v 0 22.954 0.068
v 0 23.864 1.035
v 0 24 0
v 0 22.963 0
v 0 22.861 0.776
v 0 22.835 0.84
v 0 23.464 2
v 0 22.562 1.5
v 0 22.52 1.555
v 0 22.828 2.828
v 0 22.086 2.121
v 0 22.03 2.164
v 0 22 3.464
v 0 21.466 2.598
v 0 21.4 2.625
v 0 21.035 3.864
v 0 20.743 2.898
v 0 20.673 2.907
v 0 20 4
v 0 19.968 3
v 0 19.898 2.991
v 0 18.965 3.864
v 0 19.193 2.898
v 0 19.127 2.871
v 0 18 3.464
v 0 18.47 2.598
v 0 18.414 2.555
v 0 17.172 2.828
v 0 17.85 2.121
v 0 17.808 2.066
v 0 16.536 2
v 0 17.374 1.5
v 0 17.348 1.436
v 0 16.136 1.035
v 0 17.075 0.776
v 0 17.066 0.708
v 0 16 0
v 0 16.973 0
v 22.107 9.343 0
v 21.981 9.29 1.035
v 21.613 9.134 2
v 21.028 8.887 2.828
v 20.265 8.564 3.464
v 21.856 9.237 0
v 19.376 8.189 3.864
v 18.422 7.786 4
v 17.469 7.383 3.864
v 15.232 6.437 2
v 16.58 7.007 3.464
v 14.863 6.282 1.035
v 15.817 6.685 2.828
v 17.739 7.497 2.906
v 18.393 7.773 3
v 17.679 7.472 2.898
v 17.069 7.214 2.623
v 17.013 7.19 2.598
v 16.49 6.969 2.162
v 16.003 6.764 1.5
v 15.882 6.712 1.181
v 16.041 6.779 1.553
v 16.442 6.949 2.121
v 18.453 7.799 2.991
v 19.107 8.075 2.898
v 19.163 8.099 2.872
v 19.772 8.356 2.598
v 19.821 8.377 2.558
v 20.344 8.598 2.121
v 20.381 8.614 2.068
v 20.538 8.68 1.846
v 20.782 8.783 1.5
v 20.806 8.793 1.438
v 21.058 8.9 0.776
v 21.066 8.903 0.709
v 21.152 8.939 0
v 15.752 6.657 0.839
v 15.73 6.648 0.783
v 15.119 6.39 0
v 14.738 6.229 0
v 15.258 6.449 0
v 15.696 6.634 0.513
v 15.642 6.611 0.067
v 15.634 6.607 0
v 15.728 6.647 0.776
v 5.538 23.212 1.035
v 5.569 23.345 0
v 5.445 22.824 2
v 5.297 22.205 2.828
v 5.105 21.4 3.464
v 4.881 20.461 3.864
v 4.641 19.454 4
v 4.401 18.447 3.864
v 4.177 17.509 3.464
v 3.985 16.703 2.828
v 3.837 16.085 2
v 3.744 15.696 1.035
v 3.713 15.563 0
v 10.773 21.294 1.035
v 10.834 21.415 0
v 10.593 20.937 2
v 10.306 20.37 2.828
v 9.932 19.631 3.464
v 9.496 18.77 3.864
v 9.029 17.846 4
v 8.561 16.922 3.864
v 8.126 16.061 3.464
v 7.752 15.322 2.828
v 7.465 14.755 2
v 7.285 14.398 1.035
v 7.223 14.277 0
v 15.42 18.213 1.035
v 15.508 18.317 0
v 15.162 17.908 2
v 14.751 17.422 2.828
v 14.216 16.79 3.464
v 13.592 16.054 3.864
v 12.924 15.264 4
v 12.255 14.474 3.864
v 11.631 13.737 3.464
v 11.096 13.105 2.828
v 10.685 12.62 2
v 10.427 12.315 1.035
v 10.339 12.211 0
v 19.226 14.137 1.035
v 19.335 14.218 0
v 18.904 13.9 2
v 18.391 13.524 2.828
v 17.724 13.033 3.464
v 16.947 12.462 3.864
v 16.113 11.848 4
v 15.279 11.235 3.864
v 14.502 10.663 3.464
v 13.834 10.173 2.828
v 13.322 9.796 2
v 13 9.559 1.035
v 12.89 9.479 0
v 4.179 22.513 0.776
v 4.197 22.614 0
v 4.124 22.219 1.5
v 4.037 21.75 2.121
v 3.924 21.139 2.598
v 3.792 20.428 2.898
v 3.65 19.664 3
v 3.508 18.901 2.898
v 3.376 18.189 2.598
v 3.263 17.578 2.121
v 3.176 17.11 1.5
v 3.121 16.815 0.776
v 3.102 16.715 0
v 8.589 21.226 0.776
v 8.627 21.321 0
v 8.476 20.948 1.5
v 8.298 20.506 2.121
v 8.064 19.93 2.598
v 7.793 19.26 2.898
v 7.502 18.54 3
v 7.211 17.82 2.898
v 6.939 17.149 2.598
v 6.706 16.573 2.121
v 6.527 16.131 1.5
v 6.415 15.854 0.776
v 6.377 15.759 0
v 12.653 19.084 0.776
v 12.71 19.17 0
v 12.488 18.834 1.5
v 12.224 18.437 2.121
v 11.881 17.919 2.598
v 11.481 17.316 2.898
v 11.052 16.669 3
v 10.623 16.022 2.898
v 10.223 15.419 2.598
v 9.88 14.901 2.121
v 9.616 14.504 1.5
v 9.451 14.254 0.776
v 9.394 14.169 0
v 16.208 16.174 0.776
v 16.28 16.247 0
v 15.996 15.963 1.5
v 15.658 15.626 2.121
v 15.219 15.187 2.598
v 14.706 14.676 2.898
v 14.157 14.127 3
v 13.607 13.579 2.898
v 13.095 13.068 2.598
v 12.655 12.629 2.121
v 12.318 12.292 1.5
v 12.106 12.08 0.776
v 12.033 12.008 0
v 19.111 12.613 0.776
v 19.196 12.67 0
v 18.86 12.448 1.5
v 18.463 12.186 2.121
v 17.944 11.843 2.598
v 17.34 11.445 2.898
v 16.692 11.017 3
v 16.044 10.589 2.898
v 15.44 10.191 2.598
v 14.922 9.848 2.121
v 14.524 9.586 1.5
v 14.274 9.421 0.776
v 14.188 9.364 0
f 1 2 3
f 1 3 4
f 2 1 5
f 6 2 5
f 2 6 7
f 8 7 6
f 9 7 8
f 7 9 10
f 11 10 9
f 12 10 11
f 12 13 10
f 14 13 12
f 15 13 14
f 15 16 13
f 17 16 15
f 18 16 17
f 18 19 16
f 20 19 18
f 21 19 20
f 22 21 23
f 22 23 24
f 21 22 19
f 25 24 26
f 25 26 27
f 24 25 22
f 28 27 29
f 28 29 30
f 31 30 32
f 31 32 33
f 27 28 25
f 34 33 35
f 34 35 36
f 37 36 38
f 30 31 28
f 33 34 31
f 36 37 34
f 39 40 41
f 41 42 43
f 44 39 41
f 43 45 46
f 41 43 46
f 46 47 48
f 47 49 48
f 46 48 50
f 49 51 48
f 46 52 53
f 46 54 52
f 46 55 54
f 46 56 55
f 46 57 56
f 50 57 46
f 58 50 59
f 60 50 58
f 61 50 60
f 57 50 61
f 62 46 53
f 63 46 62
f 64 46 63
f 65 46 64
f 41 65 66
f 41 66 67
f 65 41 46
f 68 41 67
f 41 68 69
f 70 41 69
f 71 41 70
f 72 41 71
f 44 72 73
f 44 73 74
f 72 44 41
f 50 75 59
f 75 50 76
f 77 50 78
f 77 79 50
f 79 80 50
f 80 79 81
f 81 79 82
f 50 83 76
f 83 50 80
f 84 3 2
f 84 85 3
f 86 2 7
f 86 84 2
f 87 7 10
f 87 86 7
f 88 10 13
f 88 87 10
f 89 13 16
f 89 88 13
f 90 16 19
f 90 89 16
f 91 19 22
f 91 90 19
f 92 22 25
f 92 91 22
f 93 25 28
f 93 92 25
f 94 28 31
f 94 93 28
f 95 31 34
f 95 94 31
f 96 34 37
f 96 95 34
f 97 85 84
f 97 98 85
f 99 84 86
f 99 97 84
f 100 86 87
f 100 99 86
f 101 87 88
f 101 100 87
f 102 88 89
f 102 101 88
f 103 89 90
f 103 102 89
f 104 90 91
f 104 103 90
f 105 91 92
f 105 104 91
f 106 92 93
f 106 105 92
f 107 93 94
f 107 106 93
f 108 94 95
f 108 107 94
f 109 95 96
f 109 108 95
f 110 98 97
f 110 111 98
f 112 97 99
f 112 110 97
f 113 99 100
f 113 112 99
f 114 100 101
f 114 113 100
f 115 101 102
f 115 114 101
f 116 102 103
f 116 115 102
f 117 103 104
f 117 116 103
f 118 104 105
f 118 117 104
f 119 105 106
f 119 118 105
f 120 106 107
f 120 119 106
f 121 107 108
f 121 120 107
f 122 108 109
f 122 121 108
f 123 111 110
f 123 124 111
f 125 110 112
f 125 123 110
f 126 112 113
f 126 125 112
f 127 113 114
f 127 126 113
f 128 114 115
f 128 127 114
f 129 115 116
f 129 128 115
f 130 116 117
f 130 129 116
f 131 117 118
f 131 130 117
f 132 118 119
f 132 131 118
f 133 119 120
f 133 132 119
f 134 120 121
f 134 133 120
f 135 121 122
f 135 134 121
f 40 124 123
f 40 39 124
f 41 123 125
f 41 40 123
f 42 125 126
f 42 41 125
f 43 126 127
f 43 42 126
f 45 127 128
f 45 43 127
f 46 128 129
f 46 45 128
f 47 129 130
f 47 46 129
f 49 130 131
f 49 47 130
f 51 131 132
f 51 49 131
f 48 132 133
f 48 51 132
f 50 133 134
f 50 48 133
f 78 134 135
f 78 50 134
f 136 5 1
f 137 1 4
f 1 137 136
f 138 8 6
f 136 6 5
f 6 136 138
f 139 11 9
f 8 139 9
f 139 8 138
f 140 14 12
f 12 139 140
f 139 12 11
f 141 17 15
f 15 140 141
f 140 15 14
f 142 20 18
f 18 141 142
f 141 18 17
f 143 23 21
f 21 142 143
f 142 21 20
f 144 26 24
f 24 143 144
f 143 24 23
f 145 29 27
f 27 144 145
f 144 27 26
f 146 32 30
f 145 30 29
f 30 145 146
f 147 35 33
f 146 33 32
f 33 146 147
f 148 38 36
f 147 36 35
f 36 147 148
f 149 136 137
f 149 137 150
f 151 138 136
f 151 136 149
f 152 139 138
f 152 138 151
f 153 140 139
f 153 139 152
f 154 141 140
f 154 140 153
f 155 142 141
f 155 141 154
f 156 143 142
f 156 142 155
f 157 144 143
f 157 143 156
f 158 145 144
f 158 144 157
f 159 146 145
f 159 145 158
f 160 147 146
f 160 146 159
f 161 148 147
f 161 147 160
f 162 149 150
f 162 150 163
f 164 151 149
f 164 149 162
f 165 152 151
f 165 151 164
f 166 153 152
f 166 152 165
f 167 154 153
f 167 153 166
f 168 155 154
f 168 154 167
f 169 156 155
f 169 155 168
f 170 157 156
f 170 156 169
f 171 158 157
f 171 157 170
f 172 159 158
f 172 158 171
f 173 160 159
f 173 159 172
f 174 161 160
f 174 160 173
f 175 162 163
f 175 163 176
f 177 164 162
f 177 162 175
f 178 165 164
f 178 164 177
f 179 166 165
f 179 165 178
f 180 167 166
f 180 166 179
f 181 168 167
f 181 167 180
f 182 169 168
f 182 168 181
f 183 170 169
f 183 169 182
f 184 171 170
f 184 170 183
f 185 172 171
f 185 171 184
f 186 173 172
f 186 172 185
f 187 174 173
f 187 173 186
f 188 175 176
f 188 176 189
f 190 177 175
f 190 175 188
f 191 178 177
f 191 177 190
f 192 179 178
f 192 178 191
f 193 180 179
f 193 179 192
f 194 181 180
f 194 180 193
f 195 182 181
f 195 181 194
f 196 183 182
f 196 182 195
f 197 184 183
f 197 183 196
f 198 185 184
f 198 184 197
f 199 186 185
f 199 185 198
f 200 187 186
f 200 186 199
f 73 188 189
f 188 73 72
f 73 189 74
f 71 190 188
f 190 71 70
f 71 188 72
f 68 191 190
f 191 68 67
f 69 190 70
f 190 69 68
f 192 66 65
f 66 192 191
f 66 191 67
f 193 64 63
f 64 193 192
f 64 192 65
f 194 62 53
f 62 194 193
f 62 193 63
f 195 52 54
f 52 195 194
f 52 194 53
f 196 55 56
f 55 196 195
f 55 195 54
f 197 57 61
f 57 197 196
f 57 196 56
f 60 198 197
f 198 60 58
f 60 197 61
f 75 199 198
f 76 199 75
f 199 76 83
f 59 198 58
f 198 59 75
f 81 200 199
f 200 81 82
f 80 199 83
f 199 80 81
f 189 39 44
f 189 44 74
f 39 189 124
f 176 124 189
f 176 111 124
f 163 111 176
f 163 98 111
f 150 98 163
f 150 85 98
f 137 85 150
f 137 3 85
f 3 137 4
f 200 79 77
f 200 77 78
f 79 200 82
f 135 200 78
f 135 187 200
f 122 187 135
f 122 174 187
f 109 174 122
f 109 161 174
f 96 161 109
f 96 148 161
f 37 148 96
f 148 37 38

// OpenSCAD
// file: ../build_environments.scad
// build_environments.scad: modules to build level sections
//

module pool(diameter=10.0, wall_height=2.0, step_width=3.0, connections=[])
{
    difference() {
        union() {
        difference() {
            cylinder(h=0.5,r1=diameter+step_width,r2=diameter+step_width,$fn=48);
            translate([0,0,-0.1])
                cylinder(h=0.7,r1=diameter,r2=diameter,$fn=48);
        }
        difference() {
            cylinder(h=wall_height,r1=diameter+step_width+1.0,r2=diameter+step_width+1.0,$fn=48);
            translate([0,0,-0.1])
                cylinder(h=wall_height+0.2,r1=diameter+step_width,r2=diameter+step_width,$fn=48);
        }
        }
    
        for (c = connections)
        {
            rotate([0,90,0]) {
                angle = atan2(c[1],c[0]);
                rotate([-angle,0,0]) {
                    cylinder(h=diameter+5.0,r1=c[2],r2=c[2],$fn=48);
                }
            }
        }
    }
}

module straight(length=10.0, width=2.0, dy1=0.0, dy2=0.0, dz=0.0)
{
    dims = [0, 0, 0, 0, 0, (dz/length)];
    matrix = [
        [ 1, dims[0], dims[1], 0 ],
        [ dims[2], 1, dims[4], 0 ],
        [ dims[5], dims[3], 1, 0 ],
        [ 0, 0, 0, 1 ]
    ];
    multmatrix(matrix)
    difference() {
        translate([dy1,0,0])
        union() {
            rotate([0,90,0]) {
                difference() {
                    cylinder(h=(length-dy1-dy2),r1=width+1.0,r2=width+1.0,$fn=24);
                    translate([0,0,-0.1])
                        cylinder(h=(length-dy1-dy2+0.2),r1=width,r2=width,$fn=24);
                }
                difference() {
                    cylinder(h=1.0,r1=width+2.0,r2=width+2.0,$fn=24);
                    translate([0,0,-0.1])
                        cylinder(h=1.2,r1=width,r2=width,$fn=24);
                }
                translate([0,0,(length-dy1-dy2)-1.0]) {
                    difference() {
                        cylinder(h=1.0,r1=width+2.0,r2=width+2.0,$fn=24);
                        translate([0,0,-0.1])
                            cylinder(h=1.2,r1=width,r2=width,$fn=24);
                    }
                }
            }
        }
        translate([0,0,-(2*width+4.0)/2])
            cube([3*length,3*length,2*width+4.0],center=true);
    }
}

module curve(p0=[0,0], center=[0,0], dir=1, angle=0.0, width=2.0)
{
    radius = sqrt((p0[0]-center[0])*(p0[0]-center[0]) + (p0[1]-center[1])*(p0[1]-center[1]));
    if (dir == 0) {
        difference() {
            rotate([0,0,-90])
            difference() {
                rotate_extrude(angle = angle, convexity = 10, $fn=32)
                    translate([radius, 0, 0])
                        circle(r = width+1.0,$fn=24);
                rotate([0,0,-1.0])
                    rotate_extrude(angle = angle+2.0, convexity = 10, $fn=32)
                        translate([radius, 0, 0])
                            circle(r = width,$fn=24);
            }
            translate([0,0,-(2*width+4.0)/2])
                cube([5*radius,5*radius,2*width+4.0],center=true);
        }
    }
    else {
        difference() {
            rotate([0,0,90])
            difference() {
                rotate_extrude(angle = -angle, convexity = 10, $fn=32)
                    translate([radius, 0, 0])
                        circle(r = width+1.0,$fn=24);
                rotate([0,0,1.0])
                    rotate_extrude(angle = -angle-2.0, convexity = 10, $fn=32)
                        translate([radius, 0, 0])
                            circle(r = width,$fn=24);
            }
            translate([0,0,-(2*width+4.0)/2])
                cube([5*radius,5*radius,2*width+4.0],center=true);
        }
    }

}

// test pool
//pool(diameter=12.0000, wall_height=3.0000, step_width=3.0000, connections=[[0.0000,-26.0000,2.0000], [23.6074,0.0000,2.0000]]);

// test straight, slope
//straight(length=26.0000, width=2.0000, dy1=11.8322, dy2=6.7082, dz=0.0000);
//straight(length=29.1549, width=12.0000, dy1=0.0000, dy2=0.0000, dz=-15.0000);

// test curve
//curve(p0=[23.6074, 0.0000], center=[23.6074, 5.0000], dir=0, angle=60.1011, width=2.0000);
//curve(p0=[33.6426, 12.4219], center=[37.9771, 9.9295], dir=1, angle=120.4627, width=2.0000);
// main file
use <../build_environments.scad>;
curve(p0=[-64.6745, 23.3270], center=[-51.8856, 7.9502], dir=1, angle=67.0897, width=3.0000);
